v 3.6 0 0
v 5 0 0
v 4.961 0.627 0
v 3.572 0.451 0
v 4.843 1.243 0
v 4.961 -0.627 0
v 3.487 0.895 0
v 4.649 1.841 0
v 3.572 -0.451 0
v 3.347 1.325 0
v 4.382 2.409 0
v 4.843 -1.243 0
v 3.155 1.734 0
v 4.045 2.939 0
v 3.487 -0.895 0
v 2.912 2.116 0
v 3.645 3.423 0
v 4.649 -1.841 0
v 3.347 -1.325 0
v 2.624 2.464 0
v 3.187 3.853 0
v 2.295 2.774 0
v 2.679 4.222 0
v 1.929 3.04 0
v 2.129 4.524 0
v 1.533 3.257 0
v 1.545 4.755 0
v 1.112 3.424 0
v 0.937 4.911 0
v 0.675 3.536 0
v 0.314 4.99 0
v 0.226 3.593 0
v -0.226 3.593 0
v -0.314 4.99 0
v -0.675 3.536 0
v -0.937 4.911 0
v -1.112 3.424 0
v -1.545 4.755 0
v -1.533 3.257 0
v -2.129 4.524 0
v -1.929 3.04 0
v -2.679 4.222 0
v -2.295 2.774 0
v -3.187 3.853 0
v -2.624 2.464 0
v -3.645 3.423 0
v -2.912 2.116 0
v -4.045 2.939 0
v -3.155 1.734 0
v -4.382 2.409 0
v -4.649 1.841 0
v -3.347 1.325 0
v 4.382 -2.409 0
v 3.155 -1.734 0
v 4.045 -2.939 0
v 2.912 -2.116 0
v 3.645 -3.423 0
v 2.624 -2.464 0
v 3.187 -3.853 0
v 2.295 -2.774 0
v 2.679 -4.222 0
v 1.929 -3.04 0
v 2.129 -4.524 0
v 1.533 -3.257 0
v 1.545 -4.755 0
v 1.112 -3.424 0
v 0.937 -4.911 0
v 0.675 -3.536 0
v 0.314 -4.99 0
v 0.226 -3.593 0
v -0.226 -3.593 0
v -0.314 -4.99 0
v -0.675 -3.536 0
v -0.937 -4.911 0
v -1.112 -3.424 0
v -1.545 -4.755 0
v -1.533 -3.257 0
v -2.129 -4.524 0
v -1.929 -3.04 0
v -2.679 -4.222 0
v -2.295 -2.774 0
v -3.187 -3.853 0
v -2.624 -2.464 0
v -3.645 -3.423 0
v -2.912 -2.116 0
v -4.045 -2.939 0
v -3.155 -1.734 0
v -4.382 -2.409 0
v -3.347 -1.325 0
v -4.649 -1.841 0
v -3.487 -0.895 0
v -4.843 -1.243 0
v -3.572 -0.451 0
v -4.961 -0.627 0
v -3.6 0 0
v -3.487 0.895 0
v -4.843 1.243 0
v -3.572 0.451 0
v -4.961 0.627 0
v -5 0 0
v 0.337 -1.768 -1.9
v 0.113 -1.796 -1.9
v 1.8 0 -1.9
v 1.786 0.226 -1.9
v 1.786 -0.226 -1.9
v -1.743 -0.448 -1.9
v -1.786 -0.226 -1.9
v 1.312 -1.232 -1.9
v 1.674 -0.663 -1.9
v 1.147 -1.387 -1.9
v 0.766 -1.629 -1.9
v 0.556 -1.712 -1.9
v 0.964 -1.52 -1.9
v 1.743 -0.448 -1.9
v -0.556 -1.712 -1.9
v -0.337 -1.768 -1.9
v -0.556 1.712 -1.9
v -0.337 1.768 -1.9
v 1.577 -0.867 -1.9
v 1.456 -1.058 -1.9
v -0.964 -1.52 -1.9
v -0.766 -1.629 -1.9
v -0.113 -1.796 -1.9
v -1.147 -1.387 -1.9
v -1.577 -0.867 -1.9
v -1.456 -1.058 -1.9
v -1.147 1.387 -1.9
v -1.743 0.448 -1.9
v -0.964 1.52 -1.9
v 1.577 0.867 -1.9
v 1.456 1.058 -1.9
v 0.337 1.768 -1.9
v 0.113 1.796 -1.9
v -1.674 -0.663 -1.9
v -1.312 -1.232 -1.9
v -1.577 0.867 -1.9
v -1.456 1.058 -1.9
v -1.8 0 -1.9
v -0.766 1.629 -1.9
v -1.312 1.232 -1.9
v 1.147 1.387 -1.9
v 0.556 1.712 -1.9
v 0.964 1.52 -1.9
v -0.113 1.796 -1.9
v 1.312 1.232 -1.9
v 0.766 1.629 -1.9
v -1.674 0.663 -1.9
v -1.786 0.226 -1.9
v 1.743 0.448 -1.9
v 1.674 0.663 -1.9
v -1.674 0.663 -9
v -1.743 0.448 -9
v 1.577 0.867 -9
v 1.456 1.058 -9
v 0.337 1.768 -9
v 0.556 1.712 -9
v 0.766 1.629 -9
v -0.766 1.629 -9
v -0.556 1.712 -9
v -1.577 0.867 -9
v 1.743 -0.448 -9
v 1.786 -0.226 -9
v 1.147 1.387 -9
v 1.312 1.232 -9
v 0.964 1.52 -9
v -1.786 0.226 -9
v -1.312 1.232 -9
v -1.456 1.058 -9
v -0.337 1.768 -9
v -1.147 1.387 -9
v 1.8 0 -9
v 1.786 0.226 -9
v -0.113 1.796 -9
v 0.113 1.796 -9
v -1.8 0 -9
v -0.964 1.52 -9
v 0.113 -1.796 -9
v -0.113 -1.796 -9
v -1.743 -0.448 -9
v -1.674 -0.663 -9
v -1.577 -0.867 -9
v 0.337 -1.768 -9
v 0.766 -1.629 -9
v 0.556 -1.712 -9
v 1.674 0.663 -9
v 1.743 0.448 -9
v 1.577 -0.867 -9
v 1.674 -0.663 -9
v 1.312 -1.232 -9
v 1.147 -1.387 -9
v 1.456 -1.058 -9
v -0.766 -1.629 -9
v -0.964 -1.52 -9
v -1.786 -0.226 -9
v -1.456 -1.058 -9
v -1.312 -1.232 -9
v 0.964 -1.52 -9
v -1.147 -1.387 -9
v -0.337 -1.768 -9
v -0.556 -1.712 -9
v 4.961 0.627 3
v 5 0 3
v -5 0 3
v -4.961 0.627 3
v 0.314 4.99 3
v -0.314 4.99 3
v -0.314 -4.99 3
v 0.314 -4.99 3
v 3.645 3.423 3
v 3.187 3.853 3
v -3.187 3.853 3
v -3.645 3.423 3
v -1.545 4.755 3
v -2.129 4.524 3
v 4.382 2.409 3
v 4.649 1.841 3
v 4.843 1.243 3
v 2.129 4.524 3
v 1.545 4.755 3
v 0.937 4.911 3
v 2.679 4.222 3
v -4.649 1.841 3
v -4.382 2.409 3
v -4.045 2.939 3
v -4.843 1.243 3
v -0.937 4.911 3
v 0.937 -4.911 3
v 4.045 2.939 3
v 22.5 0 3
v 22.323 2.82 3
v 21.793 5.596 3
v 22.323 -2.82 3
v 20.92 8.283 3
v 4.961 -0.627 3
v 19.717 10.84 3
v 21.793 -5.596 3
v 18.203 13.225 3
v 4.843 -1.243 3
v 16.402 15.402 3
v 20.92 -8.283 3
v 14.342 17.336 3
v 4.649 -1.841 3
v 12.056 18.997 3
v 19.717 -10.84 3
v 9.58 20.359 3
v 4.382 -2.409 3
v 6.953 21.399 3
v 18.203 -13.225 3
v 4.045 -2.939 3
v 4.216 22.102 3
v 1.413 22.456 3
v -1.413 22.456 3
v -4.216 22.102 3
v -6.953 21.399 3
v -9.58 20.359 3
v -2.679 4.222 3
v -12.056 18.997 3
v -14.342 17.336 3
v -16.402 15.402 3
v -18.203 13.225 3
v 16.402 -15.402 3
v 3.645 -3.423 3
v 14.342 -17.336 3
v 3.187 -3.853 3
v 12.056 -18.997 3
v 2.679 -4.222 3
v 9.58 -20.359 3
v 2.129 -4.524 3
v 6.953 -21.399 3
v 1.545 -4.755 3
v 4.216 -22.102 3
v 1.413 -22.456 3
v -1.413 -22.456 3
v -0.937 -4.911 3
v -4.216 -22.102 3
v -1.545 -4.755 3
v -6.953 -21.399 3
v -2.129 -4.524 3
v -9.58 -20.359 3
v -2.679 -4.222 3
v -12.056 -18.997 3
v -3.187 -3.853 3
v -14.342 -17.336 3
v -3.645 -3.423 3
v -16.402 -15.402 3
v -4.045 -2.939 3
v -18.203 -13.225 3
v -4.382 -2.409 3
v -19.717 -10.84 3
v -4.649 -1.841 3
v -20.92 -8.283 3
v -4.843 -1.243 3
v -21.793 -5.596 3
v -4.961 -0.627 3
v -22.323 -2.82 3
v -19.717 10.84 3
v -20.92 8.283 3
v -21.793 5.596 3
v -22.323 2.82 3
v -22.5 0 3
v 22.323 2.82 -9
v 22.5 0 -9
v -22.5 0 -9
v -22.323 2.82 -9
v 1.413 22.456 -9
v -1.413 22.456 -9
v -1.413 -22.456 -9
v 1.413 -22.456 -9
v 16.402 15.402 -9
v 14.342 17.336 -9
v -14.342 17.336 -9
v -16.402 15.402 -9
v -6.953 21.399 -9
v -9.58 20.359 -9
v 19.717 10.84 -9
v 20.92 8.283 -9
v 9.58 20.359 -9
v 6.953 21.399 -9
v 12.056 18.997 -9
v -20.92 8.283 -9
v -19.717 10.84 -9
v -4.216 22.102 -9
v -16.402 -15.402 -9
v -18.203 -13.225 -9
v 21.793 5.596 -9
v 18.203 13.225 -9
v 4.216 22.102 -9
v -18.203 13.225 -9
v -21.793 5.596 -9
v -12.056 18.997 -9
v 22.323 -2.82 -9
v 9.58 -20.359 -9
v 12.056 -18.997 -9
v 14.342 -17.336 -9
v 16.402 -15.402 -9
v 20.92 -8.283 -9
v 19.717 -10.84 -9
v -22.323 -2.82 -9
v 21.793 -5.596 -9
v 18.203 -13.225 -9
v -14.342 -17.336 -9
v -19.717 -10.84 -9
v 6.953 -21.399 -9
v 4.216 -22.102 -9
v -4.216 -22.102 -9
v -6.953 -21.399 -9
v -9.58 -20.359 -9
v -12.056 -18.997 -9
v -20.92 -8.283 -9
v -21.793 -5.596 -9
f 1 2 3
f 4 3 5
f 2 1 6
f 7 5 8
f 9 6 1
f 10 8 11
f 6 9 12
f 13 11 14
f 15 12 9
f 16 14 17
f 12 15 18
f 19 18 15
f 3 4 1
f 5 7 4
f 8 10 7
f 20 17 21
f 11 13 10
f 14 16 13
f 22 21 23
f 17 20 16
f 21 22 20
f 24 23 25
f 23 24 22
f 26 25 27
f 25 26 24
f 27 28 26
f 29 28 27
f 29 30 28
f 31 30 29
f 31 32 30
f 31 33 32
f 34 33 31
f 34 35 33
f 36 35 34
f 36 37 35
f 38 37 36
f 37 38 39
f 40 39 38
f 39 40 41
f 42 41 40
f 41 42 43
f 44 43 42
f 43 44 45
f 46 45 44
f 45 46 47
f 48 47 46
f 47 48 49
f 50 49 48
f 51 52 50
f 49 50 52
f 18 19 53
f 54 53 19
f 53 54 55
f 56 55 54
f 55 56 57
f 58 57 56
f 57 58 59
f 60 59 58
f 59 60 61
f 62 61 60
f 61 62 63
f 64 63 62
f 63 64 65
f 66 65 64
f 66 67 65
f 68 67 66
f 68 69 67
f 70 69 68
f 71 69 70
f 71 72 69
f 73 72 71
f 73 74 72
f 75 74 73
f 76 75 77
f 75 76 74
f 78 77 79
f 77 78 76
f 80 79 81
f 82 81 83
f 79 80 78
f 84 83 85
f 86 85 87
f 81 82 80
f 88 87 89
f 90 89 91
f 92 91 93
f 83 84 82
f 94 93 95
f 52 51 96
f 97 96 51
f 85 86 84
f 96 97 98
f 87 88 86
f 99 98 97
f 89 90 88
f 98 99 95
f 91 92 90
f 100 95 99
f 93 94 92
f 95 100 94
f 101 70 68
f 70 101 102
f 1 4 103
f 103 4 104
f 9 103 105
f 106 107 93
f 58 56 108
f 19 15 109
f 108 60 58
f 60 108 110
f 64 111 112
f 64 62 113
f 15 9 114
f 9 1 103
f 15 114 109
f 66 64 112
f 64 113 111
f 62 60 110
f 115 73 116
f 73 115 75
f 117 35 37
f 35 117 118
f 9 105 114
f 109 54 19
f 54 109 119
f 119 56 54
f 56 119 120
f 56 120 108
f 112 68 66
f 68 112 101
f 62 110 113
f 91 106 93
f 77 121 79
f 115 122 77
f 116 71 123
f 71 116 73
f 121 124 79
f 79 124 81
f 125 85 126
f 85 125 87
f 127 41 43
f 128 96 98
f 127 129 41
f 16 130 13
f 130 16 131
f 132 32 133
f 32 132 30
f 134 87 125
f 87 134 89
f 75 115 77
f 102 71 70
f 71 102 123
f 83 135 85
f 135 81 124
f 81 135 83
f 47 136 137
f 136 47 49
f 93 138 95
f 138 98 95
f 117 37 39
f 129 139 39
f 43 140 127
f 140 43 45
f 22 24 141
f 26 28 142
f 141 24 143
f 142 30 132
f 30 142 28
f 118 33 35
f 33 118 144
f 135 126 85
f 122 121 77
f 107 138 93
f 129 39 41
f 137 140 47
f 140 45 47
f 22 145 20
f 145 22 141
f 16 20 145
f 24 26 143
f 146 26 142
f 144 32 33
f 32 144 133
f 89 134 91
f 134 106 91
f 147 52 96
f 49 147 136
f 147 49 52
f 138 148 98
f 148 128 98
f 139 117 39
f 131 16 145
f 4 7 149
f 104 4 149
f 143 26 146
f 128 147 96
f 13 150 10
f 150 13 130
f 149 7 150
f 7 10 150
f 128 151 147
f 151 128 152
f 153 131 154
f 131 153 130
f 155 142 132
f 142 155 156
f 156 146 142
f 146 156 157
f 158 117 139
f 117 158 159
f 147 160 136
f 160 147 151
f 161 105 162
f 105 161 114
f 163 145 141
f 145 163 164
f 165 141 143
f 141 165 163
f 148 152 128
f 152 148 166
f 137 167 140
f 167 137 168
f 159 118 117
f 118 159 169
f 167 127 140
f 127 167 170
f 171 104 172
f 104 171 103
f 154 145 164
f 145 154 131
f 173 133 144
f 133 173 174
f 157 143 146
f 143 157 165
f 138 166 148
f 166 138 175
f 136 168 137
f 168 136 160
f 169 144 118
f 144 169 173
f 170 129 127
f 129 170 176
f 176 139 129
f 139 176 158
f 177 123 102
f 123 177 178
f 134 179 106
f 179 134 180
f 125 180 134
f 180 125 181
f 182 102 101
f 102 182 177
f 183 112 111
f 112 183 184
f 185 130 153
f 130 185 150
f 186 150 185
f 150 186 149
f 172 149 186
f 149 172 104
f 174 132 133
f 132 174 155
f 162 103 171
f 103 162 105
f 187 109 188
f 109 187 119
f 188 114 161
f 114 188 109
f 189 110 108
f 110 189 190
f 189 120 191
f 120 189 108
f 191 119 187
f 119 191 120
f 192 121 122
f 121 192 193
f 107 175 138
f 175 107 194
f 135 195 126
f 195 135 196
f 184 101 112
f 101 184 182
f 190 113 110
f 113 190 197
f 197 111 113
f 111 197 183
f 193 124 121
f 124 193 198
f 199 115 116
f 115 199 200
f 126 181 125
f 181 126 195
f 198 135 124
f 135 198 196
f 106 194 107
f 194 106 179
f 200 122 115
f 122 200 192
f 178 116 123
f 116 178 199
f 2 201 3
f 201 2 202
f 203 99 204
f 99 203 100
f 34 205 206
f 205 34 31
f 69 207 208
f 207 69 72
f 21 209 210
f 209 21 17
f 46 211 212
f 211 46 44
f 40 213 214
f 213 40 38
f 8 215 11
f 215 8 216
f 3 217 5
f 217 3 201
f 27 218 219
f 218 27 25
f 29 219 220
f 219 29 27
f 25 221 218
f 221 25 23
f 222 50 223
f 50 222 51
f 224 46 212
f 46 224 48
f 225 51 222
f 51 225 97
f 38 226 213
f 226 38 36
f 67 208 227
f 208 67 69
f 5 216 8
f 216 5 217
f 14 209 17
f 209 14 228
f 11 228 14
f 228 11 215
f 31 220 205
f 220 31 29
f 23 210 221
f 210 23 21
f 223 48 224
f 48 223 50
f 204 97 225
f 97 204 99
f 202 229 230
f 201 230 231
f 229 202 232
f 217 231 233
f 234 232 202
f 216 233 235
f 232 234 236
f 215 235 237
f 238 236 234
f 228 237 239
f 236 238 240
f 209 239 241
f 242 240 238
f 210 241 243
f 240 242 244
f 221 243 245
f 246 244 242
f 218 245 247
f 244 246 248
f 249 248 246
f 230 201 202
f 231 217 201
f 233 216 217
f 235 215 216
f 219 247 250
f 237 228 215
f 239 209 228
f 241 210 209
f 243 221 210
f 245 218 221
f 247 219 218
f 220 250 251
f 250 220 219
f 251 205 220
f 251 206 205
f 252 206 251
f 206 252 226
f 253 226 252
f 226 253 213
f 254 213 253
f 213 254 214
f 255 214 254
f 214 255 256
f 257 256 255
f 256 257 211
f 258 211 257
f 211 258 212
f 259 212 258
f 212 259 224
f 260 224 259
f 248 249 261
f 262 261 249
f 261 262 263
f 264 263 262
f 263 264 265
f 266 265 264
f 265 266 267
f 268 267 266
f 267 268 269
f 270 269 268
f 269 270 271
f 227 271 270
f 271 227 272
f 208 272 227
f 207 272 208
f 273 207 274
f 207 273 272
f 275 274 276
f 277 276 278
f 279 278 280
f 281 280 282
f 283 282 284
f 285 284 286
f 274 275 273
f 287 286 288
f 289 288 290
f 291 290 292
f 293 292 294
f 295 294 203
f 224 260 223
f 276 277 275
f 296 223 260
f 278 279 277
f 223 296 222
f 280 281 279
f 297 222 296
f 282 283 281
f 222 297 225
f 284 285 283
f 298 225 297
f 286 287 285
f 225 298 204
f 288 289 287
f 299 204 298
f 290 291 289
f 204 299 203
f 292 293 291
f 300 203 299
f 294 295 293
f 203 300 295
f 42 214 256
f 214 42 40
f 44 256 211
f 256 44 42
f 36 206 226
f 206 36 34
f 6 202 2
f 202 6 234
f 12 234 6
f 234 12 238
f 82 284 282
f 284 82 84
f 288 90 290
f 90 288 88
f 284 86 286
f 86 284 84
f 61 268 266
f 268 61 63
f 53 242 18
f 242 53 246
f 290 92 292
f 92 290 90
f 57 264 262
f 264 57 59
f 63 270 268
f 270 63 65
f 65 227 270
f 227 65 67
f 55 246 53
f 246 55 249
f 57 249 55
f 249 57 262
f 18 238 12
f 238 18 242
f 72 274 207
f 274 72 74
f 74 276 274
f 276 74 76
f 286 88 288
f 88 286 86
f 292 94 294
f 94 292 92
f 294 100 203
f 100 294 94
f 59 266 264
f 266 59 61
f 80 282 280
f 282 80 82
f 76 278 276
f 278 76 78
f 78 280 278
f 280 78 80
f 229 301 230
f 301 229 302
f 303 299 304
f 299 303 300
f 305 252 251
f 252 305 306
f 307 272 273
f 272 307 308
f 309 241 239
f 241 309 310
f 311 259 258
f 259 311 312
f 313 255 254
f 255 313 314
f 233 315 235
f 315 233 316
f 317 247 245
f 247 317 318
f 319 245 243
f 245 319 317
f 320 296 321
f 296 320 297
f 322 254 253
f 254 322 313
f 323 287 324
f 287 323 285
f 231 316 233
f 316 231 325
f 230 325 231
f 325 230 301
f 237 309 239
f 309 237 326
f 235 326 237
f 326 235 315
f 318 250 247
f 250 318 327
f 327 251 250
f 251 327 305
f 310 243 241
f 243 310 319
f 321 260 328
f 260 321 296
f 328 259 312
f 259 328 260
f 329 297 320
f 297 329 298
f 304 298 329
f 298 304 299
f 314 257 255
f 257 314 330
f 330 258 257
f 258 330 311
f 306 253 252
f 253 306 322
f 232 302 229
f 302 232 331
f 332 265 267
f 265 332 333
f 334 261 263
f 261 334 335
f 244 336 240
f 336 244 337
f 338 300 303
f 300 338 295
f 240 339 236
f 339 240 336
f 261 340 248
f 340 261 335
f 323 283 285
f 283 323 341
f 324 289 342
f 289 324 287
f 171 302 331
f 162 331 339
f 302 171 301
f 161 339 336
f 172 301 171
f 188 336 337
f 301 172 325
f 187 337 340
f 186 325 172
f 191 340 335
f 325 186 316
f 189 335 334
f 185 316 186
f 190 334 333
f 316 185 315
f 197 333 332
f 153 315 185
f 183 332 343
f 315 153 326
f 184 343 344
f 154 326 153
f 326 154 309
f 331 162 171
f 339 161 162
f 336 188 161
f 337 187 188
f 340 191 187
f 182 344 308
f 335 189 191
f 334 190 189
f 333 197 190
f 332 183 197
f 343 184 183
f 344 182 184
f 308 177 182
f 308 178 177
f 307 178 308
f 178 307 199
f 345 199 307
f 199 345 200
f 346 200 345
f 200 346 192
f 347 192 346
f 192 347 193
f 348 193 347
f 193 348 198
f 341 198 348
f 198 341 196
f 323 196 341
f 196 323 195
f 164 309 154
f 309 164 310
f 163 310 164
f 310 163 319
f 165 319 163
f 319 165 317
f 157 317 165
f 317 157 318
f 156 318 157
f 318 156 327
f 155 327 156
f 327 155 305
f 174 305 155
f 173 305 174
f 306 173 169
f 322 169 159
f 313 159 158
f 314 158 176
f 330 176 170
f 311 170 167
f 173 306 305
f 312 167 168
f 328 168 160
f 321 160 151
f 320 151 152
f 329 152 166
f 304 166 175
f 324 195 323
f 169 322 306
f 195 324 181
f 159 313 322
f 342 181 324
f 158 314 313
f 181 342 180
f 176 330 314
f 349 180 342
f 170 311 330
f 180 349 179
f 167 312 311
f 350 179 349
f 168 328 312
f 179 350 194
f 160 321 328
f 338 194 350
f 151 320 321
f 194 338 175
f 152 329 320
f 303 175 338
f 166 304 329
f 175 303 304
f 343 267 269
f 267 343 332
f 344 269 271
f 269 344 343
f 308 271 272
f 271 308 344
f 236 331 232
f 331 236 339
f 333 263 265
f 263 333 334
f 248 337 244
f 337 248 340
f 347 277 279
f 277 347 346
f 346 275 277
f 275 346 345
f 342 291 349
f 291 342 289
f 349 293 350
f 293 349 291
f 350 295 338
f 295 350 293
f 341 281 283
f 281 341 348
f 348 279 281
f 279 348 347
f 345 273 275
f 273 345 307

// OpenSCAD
$fn = 50;


difference() {
	union() {
		translate(v = [0, 0, -9.0000000000]) {
			cylinder(h = 12, r = 22.5000000000);
		}
	}
	union() {
		translate(v = [0, 0, 0]) {
			rotate(a = [0, 0, 0]) {
				difference() {
					union() {
						translate(v = [0, 0, -12.0000000000]) {
							cylinder(h = 12, r = 1.5000000000);
						}
						translate(v = [0, 0, -1.9000000000]) {
							cylinder(h = 1.9000000000, r1 = 1.8000000000, r2 = 3.6000000000);
						}
						translate(v = [0, 0, -12.0000000000]) {
							cylinder(h = 12, r = 1.8000000000);
						}
						translate(v = [0, 0, -12.0000000000]) {
							cylinder(h = 12, r = 1.5000000000);
						}
					}
					union();
				}
			}
		}
		#cylinder(h = 3, r = 5.0000000000);
	}
}
